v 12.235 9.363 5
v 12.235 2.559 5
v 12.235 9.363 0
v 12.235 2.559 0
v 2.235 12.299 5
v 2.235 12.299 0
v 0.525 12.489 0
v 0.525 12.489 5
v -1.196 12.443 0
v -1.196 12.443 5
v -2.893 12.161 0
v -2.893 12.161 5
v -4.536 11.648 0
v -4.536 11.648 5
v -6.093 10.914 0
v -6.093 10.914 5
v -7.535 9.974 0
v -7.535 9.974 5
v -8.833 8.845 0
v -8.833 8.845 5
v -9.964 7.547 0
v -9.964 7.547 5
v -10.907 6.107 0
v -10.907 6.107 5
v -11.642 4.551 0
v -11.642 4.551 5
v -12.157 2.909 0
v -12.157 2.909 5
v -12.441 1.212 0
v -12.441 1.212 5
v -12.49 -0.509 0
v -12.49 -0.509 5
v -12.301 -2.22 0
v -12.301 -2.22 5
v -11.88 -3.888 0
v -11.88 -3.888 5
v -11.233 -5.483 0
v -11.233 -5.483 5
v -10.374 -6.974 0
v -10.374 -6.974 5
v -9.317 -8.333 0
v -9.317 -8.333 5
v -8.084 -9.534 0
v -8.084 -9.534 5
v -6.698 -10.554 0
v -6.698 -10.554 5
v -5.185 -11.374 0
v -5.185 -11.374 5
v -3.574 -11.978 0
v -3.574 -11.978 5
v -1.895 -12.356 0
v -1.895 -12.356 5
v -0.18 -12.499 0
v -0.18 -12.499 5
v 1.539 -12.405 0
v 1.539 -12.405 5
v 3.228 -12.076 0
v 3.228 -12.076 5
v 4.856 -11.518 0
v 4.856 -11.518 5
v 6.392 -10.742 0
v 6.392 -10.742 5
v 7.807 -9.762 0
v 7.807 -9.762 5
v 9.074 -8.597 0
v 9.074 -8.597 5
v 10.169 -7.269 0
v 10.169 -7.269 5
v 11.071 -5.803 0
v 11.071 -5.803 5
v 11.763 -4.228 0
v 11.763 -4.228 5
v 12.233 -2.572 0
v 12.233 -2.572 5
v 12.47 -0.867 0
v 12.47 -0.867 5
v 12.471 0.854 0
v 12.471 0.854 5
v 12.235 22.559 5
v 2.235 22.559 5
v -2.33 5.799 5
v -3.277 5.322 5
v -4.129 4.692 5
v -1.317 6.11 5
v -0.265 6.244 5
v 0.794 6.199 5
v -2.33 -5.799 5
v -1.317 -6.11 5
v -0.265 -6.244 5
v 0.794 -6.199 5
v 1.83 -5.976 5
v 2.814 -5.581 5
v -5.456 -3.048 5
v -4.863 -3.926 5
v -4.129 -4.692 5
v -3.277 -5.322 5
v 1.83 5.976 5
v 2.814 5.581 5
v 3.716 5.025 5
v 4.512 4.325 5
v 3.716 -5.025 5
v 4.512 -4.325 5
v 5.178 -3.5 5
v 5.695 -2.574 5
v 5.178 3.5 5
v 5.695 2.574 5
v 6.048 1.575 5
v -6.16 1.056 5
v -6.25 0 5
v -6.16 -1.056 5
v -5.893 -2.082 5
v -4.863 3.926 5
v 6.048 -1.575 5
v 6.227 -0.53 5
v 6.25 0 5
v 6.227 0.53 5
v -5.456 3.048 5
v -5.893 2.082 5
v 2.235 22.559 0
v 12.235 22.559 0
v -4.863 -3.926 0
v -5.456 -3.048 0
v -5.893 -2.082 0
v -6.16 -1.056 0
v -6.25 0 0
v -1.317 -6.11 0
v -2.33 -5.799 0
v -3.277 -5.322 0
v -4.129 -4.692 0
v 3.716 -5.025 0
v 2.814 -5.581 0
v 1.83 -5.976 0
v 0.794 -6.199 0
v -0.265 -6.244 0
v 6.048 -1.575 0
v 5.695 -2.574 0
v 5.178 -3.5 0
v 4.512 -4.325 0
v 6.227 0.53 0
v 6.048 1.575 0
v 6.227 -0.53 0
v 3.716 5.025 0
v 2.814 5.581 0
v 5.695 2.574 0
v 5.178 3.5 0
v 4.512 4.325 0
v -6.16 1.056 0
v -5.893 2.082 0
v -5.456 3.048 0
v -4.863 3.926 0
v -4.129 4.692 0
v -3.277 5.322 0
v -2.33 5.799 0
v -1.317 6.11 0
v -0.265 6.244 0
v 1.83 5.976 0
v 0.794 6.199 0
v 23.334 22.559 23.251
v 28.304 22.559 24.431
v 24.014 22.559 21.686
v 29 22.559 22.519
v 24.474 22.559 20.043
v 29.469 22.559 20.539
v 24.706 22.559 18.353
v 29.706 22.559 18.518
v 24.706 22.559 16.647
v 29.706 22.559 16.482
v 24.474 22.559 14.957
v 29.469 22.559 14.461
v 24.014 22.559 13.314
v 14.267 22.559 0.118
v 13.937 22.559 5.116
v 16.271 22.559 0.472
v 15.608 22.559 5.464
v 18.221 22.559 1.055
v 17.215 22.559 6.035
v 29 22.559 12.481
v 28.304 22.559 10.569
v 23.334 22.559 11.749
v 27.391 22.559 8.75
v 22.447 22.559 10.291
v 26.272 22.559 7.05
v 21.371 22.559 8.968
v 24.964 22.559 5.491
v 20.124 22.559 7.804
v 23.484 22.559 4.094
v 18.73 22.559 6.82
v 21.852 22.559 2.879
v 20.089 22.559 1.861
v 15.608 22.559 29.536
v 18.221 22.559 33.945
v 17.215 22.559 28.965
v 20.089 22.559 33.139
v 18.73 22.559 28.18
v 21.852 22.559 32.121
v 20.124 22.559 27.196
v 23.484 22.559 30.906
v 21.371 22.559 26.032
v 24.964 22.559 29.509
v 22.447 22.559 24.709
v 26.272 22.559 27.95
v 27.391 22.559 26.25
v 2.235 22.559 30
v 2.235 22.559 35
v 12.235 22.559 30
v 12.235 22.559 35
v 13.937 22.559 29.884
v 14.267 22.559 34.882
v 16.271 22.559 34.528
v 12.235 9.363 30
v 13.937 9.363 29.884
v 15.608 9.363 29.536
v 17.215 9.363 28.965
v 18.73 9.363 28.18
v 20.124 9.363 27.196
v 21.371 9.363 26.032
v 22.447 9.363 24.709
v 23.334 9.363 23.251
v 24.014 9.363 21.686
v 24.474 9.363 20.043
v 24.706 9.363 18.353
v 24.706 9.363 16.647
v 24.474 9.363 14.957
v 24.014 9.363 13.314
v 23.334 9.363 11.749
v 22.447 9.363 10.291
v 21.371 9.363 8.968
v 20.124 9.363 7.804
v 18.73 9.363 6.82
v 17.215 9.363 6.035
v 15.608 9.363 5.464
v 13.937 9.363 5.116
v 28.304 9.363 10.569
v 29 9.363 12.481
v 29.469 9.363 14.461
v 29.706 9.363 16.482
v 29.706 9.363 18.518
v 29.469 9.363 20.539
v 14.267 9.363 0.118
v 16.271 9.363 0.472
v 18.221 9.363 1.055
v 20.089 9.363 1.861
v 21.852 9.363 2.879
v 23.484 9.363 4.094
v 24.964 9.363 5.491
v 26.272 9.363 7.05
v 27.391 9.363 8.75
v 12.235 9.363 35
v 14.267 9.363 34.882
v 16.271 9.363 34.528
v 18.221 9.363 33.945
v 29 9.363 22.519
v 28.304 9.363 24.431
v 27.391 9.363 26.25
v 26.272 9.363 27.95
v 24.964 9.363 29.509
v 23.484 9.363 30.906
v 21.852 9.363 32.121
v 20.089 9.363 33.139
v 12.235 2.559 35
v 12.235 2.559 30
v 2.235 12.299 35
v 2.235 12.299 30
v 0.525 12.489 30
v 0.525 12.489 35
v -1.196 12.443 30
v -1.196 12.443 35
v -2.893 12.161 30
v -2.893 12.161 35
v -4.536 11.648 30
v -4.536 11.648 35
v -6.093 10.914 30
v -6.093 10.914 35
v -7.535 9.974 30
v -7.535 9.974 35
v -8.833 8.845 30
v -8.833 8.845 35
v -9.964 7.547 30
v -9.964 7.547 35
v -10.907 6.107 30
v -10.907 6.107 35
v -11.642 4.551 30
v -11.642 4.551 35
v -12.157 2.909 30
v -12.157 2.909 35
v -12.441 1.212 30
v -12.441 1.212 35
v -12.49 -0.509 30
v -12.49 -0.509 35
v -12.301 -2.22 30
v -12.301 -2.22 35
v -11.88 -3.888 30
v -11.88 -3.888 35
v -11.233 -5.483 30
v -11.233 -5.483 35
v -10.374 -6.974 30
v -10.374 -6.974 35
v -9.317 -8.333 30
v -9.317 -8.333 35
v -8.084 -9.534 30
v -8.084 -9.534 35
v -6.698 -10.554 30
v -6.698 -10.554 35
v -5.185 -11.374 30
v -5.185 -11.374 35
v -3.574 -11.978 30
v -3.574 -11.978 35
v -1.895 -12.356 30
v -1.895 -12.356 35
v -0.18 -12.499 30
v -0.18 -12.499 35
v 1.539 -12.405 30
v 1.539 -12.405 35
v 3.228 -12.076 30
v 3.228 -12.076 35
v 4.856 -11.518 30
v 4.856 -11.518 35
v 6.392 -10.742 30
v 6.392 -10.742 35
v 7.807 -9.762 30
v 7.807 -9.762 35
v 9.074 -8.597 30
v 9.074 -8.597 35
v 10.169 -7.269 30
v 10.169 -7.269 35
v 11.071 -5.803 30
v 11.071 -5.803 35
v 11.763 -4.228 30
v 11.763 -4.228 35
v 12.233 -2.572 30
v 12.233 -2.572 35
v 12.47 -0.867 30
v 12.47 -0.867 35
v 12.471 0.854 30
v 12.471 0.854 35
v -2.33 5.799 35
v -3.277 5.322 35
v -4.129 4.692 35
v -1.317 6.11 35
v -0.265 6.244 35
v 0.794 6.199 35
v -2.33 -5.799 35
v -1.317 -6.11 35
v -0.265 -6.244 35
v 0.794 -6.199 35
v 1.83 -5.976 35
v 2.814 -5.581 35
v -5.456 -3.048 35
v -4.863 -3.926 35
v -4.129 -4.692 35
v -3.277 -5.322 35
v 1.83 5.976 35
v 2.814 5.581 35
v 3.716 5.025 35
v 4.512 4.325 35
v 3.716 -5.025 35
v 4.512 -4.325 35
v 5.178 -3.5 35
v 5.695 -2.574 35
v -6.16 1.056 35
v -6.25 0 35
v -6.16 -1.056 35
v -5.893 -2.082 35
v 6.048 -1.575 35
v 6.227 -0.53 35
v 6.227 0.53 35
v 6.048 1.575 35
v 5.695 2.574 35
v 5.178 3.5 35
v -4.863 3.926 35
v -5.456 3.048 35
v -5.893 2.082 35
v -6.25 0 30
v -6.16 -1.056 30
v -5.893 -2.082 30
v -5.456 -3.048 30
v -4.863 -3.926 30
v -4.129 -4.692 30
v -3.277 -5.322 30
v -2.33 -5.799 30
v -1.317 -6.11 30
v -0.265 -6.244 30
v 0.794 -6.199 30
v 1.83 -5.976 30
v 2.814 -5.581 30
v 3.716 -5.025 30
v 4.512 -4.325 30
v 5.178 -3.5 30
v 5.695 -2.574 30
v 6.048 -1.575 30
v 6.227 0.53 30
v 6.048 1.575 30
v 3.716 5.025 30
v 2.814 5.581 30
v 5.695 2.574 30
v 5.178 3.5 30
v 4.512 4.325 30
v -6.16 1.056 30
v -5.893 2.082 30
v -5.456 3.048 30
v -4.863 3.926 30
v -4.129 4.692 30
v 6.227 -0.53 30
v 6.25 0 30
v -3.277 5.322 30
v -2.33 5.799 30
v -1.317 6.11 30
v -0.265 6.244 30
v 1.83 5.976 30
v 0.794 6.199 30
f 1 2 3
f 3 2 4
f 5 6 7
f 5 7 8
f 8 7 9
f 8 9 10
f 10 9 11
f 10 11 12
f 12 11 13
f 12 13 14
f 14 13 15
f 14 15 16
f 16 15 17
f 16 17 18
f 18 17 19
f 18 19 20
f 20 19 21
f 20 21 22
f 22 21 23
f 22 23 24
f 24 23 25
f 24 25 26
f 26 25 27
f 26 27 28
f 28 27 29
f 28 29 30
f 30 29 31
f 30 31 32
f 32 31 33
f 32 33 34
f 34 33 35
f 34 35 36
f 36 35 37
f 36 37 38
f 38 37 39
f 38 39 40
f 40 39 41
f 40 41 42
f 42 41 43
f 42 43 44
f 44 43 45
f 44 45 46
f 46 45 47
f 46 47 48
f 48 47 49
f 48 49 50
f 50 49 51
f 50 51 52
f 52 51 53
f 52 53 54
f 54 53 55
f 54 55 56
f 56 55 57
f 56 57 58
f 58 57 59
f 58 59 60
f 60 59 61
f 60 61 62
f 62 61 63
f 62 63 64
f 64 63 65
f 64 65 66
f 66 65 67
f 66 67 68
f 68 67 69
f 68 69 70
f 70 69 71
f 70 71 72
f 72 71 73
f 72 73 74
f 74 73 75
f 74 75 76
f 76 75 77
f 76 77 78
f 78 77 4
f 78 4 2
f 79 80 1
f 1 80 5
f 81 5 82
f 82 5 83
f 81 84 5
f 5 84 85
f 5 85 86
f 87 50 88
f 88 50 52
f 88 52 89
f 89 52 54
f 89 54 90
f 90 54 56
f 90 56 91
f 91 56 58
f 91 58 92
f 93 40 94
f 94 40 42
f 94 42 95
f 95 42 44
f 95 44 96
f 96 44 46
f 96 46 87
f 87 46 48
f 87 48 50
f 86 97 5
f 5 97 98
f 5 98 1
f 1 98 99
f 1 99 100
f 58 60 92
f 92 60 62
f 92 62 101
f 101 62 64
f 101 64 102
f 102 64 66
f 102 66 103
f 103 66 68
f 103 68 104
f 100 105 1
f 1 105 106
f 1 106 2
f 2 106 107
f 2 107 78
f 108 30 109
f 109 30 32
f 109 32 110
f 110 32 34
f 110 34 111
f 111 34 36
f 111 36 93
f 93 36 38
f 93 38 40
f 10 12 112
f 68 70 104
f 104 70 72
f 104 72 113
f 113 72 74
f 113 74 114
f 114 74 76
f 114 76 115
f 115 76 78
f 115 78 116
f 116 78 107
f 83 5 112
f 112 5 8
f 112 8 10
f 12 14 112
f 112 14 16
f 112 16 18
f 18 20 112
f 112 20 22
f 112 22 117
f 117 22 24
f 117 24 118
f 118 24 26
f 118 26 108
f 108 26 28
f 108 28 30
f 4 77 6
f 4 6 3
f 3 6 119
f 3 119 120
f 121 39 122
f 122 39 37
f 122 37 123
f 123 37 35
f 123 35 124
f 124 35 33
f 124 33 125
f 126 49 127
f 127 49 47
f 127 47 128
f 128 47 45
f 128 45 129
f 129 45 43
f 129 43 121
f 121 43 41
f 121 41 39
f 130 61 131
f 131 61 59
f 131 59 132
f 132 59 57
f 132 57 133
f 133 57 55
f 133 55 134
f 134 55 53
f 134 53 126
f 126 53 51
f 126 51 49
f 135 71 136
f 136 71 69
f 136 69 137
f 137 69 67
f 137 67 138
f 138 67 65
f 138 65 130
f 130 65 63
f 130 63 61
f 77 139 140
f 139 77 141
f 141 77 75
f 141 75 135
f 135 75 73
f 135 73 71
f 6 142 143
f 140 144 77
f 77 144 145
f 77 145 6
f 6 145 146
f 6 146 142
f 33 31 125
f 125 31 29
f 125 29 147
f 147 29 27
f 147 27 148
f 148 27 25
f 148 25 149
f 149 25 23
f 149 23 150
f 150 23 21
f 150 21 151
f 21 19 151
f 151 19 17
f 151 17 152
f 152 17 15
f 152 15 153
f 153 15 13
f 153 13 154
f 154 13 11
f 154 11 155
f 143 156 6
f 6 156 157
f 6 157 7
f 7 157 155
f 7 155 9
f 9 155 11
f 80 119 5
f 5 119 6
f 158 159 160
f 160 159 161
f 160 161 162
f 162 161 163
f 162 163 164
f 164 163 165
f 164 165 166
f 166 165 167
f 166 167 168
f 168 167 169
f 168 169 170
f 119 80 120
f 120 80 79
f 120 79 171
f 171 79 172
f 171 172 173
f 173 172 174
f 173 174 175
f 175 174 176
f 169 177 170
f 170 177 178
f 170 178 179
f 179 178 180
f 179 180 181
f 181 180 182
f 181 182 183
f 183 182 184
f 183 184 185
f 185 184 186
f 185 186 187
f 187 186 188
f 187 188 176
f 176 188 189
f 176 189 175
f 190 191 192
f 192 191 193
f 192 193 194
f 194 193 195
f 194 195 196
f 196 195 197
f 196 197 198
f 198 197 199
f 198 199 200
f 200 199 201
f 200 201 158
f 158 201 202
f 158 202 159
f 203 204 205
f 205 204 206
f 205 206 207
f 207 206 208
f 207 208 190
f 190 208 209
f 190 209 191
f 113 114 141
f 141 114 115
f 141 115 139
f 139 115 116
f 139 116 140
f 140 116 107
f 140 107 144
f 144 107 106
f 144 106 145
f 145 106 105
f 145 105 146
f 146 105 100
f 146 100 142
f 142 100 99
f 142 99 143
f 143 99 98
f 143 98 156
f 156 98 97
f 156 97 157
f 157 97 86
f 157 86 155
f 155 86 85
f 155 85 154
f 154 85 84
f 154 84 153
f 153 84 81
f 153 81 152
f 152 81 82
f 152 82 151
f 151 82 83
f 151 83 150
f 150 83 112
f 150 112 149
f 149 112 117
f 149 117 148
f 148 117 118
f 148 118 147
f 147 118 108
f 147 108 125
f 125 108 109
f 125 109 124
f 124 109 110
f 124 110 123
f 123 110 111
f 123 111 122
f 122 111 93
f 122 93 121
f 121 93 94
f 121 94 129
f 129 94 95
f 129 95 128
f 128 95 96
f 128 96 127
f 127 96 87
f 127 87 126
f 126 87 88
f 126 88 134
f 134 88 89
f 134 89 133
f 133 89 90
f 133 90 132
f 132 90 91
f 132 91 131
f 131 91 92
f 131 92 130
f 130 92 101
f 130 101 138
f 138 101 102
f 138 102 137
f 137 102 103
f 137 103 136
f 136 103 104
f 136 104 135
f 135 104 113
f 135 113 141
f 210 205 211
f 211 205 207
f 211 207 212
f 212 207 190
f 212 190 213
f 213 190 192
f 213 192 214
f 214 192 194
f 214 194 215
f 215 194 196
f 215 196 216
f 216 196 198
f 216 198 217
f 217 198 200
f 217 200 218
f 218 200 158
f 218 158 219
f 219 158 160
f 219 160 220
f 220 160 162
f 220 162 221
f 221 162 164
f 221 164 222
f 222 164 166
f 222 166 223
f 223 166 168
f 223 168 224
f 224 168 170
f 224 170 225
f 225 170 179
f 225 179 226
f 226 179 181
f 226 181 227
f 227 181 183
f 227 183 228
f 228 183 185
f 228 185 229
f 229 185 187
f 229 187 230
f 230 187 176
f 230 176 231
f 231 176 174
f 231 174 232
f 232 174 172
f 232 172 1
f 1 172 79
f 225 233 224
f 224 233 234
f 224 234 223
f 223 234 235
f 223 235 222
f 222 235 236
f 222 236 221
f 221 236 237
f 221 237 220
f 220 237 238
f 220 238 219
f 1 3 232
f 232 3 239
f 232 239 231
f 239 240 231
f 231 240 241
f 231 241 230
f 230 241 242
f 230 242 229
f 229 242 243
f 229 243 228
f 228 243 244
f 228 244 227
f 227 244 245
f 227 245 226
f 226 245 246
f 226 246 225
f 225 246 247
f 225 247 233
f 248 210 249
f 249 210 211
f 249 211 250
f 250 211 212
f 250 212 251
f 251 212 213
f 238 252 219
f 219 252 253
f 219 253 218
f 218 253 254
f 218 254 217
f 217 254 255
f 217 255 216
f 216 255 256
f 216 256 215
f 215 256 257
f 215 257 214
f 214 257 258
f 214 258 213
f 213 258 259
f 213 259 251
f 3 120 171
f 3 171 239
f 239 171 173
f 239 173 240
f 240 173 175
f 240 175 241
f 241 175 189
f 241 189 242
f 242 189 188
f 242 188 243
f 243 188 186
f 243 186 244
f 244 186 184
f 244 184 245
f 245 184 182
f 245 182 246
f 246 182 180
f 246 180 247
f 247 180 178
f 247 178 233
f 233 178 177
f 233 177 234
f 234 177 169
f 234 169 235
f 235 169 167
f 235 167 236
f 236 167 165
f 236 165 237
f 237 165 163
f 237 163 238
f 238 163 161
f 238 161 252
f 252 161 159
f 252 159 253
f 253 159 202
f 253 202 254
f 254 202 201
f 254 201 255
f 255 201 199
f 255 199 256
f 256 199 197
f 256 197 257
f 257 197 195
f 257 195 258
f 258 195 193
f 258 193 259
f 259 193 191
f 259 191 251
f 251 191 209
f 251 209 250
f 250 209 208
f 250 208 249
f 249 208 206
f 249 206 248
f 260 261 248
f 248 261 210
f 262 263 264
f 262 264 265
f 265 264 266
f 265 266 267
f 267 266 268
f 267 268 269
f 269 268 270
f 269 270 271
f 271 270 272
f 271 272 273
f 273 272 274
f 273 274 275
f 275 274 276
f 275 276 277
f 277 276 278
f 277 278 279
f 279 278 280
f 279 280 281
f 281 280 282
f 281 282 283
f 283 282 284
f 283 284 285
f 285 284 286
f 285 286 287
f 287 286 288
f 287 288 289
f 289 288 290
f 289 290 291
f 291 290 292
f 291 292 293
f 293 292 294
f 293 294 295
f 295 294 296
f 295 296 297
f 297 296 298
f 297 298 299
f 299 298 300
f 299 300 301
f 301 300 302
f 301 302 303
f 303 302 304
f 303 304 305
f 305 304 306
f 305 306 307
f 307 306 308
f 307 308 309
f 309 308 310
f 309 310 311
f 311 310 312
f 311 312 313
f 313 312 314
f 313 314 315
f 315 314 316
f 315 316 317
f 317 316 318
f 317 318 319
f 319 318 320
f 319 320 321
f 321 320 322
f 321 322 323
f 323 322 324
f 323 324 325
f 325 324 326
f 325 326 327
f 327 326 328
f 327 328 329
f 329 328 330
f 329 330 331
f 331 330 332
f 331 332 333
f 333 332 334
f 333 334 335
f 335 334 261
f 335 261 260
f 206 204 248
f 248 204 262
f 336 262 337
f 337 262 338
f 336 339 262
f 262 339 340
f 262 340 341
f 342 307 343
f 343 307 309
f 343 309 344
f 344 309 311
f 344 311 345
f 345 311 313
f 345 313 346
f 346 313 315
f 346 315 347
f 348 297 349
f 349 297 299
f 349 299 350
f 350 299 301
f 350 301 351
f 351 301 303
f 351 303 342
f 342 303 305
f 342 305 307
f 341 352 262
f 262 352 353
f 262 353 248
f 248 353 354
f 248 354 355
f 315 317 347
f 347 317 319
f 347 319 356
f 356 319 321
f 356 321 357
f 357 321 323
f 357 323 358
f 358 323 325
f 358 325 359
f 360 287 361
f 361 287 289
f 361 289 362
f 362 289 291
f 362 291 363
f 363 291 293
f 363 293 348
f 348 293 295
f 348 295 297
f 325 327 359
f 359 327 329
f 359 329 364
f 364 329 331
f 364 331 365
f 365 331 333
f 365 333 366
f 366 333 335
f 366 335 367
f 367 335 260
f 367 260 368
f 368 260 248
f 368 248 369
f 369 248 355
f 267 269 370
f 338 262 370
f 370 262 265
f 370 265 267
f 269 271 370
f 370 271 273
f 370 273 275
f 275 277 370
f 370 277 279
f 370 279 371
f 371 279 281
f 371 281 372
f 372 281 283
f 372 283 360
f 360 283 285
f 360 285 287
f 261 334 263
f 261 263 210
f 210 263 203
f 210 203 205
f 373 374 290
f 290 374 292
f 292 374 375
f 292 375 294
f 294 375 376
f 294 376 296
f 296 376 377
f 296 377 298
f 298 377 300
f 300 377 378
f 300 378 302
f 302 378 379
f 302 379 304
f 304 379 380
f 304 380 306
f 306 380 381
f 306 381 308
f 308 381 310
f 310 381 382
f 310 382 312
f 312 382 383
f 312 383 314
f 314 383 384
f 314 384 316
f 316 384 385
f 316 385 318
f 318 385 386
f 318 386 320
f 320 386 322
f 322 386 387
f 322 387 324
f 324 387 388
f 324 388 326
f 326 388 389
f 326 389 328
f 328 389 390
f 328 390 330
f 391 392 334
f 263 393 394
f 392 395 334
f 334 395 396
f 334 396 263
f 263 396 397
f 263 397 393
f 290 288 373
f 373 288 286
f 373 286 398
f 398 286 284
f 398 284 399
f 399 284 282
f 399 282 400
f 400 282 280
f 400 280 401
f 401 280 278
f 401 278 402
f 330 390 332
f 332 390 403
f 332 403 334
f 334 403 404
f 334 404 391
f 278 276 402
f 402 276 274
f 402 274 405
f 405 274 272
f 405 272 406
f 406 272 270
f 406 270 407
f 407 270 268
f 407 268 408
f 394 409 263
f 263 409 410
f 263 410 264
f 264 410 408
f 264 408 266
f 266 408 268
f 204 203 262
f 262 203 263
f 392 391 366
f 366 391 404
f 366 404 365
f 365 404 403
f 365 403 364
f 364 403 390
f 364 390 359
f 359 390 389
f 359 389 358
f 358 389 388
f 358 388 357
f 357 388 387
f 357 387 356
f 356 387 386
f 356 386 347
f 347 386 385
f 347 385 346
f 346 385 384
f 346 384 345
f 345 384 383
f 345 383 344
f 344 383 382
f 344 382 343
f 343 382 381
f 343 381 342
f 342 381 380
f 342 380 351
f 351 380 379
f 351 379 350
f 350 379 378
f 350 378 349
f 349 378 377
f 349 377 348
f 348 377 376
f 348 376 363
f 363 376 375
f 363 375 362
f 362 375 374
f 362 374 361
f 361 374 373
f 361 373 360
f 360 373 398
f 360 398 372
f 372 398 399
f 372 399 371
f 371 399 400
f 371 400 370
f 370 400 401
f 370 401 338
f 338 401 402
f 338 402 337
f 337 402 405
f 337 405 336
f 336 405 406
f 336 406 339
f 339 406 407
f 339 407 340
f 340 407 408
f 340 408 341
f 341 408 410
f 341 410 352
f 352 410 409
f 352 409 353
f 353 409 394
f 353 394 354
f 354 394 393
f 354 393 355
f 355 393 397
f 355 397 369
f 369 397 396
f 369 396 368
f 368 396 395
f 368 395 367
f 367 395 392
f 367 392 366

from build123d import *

# Parameters (mm, degrees)
SKETCH1_R           = 12.5
BOSS_EXTRUDE1_DEPTH = 5
SKETCH2_R           = 12.5
BOSS_EXTRUDE2_DEPTH = 5
SKETCH4_W           = 10
SKETCH4_H           = 20
BOSS_EXTRUDE4_DEPTH = 5
SKETCH5_W           = 10
SKETCH5_H           = 20
BOSS_EXTRUDE5_DEPTH = 5
SKETCH8_R           = 6.25
CUT_EXTRUDE2_DEPTH  = 35
SKETCH12_W          = 5
SKETCH12_H          = 13.195782459


with BuildPart() as part:
    # Sketch1 → Boss-Extrude1 (new body)
    with BuildSketch(Plane.XY):
        Circle(SKETCH1_R)
    extrude(amount=BOSS_EXTRUDE1_DEPTH)

    # Sketch4 → Boss-Extrude4 (add)
    with BuildSketch(Plane.XY.offset(5)):
        with Locations((7.235331181, 12.5586463)):
            Rectangle(SKETCH4_W, SKETCH4_H)
    extrude(amount=-BOSS_EXTRUDE4_DEPTH)


with BuildPart() as body_2:
    # Sketch2 → Boss-Extrude2 (new body)
    with BuildSketch(Plane.XY.offset(30)):
        Circle(SKETCH2_R)
    extrude(amount=BOSS_EXTRUDE2_DEPTH)

    # Sketch5 → Boss-Extrude5 (add)
    with BuildSketch(Plane(origin=(0, 0, 30), x_dir=(-1, 0, 0), z_dir=(0, 0, -1))):
        with Locations((-7.235331181, 12.5586463)):
            Rectangle(SKETCH5_W, SKETCH5_H)
    extrude(amount=-BOSS_EXTRUDE5_DEPTH)


with BuildPart() as cut_extrude2_tool:
    # Sketch8 → Cut-Extrude2 (new body)
    with BuildSketch(Plane(origin=(0, 0, 0), x_dir=(-1, 0, 0), z_dir=(0, 0, -1))):
        Circle(SKETCH8_R)
    extrude(amount=-CUT_EXTRUDE2_DEPTH)


with BuildPart() as part_1:
    add(part.part)

    # Cut-Extrude2: cut by cut_extrude2_tool
    add(cut_extrude2_tool.part, mode=Mode.SUBTRACT)



with BuildPart() as body_2_1:
    add(body_2.part)

    # Cut-Extrude2: cut by cut_extrude2_tool
    add(cut_extrude2_tool.part, mode=Mode.SUBTRACT)


with BuildPart() as part_2:
    add(part_1.part)

    add(body_2_1.part)  # Sweep2 merges body 2
    # Sweep2: sweep along a path in Sketch14
    with BuildLine(Plane(origin=(0, 15.960755071, 0), x_dir=(1, 0, 0), z_dir=(0, 1, 0))) as sweep2_path:
        ThreePointArc((12.235331181, -32.5), (27.235331181, -17.5), (12.235331181, -2.5))
    # Sketch12 → Sweep2 (sweep)
    with BuildSketch(Plane(origin=(12.235331181, 0, 0), x_dir=(0, 0, -1), z_dir=(1, 0, 0))):
        with Locations((-32.5, 15.960755071)):
            Rectangle(SKETCH12_W, SKETCH12_H)
    sweep(path=sweep2_path.line)


solid = part_2.part
